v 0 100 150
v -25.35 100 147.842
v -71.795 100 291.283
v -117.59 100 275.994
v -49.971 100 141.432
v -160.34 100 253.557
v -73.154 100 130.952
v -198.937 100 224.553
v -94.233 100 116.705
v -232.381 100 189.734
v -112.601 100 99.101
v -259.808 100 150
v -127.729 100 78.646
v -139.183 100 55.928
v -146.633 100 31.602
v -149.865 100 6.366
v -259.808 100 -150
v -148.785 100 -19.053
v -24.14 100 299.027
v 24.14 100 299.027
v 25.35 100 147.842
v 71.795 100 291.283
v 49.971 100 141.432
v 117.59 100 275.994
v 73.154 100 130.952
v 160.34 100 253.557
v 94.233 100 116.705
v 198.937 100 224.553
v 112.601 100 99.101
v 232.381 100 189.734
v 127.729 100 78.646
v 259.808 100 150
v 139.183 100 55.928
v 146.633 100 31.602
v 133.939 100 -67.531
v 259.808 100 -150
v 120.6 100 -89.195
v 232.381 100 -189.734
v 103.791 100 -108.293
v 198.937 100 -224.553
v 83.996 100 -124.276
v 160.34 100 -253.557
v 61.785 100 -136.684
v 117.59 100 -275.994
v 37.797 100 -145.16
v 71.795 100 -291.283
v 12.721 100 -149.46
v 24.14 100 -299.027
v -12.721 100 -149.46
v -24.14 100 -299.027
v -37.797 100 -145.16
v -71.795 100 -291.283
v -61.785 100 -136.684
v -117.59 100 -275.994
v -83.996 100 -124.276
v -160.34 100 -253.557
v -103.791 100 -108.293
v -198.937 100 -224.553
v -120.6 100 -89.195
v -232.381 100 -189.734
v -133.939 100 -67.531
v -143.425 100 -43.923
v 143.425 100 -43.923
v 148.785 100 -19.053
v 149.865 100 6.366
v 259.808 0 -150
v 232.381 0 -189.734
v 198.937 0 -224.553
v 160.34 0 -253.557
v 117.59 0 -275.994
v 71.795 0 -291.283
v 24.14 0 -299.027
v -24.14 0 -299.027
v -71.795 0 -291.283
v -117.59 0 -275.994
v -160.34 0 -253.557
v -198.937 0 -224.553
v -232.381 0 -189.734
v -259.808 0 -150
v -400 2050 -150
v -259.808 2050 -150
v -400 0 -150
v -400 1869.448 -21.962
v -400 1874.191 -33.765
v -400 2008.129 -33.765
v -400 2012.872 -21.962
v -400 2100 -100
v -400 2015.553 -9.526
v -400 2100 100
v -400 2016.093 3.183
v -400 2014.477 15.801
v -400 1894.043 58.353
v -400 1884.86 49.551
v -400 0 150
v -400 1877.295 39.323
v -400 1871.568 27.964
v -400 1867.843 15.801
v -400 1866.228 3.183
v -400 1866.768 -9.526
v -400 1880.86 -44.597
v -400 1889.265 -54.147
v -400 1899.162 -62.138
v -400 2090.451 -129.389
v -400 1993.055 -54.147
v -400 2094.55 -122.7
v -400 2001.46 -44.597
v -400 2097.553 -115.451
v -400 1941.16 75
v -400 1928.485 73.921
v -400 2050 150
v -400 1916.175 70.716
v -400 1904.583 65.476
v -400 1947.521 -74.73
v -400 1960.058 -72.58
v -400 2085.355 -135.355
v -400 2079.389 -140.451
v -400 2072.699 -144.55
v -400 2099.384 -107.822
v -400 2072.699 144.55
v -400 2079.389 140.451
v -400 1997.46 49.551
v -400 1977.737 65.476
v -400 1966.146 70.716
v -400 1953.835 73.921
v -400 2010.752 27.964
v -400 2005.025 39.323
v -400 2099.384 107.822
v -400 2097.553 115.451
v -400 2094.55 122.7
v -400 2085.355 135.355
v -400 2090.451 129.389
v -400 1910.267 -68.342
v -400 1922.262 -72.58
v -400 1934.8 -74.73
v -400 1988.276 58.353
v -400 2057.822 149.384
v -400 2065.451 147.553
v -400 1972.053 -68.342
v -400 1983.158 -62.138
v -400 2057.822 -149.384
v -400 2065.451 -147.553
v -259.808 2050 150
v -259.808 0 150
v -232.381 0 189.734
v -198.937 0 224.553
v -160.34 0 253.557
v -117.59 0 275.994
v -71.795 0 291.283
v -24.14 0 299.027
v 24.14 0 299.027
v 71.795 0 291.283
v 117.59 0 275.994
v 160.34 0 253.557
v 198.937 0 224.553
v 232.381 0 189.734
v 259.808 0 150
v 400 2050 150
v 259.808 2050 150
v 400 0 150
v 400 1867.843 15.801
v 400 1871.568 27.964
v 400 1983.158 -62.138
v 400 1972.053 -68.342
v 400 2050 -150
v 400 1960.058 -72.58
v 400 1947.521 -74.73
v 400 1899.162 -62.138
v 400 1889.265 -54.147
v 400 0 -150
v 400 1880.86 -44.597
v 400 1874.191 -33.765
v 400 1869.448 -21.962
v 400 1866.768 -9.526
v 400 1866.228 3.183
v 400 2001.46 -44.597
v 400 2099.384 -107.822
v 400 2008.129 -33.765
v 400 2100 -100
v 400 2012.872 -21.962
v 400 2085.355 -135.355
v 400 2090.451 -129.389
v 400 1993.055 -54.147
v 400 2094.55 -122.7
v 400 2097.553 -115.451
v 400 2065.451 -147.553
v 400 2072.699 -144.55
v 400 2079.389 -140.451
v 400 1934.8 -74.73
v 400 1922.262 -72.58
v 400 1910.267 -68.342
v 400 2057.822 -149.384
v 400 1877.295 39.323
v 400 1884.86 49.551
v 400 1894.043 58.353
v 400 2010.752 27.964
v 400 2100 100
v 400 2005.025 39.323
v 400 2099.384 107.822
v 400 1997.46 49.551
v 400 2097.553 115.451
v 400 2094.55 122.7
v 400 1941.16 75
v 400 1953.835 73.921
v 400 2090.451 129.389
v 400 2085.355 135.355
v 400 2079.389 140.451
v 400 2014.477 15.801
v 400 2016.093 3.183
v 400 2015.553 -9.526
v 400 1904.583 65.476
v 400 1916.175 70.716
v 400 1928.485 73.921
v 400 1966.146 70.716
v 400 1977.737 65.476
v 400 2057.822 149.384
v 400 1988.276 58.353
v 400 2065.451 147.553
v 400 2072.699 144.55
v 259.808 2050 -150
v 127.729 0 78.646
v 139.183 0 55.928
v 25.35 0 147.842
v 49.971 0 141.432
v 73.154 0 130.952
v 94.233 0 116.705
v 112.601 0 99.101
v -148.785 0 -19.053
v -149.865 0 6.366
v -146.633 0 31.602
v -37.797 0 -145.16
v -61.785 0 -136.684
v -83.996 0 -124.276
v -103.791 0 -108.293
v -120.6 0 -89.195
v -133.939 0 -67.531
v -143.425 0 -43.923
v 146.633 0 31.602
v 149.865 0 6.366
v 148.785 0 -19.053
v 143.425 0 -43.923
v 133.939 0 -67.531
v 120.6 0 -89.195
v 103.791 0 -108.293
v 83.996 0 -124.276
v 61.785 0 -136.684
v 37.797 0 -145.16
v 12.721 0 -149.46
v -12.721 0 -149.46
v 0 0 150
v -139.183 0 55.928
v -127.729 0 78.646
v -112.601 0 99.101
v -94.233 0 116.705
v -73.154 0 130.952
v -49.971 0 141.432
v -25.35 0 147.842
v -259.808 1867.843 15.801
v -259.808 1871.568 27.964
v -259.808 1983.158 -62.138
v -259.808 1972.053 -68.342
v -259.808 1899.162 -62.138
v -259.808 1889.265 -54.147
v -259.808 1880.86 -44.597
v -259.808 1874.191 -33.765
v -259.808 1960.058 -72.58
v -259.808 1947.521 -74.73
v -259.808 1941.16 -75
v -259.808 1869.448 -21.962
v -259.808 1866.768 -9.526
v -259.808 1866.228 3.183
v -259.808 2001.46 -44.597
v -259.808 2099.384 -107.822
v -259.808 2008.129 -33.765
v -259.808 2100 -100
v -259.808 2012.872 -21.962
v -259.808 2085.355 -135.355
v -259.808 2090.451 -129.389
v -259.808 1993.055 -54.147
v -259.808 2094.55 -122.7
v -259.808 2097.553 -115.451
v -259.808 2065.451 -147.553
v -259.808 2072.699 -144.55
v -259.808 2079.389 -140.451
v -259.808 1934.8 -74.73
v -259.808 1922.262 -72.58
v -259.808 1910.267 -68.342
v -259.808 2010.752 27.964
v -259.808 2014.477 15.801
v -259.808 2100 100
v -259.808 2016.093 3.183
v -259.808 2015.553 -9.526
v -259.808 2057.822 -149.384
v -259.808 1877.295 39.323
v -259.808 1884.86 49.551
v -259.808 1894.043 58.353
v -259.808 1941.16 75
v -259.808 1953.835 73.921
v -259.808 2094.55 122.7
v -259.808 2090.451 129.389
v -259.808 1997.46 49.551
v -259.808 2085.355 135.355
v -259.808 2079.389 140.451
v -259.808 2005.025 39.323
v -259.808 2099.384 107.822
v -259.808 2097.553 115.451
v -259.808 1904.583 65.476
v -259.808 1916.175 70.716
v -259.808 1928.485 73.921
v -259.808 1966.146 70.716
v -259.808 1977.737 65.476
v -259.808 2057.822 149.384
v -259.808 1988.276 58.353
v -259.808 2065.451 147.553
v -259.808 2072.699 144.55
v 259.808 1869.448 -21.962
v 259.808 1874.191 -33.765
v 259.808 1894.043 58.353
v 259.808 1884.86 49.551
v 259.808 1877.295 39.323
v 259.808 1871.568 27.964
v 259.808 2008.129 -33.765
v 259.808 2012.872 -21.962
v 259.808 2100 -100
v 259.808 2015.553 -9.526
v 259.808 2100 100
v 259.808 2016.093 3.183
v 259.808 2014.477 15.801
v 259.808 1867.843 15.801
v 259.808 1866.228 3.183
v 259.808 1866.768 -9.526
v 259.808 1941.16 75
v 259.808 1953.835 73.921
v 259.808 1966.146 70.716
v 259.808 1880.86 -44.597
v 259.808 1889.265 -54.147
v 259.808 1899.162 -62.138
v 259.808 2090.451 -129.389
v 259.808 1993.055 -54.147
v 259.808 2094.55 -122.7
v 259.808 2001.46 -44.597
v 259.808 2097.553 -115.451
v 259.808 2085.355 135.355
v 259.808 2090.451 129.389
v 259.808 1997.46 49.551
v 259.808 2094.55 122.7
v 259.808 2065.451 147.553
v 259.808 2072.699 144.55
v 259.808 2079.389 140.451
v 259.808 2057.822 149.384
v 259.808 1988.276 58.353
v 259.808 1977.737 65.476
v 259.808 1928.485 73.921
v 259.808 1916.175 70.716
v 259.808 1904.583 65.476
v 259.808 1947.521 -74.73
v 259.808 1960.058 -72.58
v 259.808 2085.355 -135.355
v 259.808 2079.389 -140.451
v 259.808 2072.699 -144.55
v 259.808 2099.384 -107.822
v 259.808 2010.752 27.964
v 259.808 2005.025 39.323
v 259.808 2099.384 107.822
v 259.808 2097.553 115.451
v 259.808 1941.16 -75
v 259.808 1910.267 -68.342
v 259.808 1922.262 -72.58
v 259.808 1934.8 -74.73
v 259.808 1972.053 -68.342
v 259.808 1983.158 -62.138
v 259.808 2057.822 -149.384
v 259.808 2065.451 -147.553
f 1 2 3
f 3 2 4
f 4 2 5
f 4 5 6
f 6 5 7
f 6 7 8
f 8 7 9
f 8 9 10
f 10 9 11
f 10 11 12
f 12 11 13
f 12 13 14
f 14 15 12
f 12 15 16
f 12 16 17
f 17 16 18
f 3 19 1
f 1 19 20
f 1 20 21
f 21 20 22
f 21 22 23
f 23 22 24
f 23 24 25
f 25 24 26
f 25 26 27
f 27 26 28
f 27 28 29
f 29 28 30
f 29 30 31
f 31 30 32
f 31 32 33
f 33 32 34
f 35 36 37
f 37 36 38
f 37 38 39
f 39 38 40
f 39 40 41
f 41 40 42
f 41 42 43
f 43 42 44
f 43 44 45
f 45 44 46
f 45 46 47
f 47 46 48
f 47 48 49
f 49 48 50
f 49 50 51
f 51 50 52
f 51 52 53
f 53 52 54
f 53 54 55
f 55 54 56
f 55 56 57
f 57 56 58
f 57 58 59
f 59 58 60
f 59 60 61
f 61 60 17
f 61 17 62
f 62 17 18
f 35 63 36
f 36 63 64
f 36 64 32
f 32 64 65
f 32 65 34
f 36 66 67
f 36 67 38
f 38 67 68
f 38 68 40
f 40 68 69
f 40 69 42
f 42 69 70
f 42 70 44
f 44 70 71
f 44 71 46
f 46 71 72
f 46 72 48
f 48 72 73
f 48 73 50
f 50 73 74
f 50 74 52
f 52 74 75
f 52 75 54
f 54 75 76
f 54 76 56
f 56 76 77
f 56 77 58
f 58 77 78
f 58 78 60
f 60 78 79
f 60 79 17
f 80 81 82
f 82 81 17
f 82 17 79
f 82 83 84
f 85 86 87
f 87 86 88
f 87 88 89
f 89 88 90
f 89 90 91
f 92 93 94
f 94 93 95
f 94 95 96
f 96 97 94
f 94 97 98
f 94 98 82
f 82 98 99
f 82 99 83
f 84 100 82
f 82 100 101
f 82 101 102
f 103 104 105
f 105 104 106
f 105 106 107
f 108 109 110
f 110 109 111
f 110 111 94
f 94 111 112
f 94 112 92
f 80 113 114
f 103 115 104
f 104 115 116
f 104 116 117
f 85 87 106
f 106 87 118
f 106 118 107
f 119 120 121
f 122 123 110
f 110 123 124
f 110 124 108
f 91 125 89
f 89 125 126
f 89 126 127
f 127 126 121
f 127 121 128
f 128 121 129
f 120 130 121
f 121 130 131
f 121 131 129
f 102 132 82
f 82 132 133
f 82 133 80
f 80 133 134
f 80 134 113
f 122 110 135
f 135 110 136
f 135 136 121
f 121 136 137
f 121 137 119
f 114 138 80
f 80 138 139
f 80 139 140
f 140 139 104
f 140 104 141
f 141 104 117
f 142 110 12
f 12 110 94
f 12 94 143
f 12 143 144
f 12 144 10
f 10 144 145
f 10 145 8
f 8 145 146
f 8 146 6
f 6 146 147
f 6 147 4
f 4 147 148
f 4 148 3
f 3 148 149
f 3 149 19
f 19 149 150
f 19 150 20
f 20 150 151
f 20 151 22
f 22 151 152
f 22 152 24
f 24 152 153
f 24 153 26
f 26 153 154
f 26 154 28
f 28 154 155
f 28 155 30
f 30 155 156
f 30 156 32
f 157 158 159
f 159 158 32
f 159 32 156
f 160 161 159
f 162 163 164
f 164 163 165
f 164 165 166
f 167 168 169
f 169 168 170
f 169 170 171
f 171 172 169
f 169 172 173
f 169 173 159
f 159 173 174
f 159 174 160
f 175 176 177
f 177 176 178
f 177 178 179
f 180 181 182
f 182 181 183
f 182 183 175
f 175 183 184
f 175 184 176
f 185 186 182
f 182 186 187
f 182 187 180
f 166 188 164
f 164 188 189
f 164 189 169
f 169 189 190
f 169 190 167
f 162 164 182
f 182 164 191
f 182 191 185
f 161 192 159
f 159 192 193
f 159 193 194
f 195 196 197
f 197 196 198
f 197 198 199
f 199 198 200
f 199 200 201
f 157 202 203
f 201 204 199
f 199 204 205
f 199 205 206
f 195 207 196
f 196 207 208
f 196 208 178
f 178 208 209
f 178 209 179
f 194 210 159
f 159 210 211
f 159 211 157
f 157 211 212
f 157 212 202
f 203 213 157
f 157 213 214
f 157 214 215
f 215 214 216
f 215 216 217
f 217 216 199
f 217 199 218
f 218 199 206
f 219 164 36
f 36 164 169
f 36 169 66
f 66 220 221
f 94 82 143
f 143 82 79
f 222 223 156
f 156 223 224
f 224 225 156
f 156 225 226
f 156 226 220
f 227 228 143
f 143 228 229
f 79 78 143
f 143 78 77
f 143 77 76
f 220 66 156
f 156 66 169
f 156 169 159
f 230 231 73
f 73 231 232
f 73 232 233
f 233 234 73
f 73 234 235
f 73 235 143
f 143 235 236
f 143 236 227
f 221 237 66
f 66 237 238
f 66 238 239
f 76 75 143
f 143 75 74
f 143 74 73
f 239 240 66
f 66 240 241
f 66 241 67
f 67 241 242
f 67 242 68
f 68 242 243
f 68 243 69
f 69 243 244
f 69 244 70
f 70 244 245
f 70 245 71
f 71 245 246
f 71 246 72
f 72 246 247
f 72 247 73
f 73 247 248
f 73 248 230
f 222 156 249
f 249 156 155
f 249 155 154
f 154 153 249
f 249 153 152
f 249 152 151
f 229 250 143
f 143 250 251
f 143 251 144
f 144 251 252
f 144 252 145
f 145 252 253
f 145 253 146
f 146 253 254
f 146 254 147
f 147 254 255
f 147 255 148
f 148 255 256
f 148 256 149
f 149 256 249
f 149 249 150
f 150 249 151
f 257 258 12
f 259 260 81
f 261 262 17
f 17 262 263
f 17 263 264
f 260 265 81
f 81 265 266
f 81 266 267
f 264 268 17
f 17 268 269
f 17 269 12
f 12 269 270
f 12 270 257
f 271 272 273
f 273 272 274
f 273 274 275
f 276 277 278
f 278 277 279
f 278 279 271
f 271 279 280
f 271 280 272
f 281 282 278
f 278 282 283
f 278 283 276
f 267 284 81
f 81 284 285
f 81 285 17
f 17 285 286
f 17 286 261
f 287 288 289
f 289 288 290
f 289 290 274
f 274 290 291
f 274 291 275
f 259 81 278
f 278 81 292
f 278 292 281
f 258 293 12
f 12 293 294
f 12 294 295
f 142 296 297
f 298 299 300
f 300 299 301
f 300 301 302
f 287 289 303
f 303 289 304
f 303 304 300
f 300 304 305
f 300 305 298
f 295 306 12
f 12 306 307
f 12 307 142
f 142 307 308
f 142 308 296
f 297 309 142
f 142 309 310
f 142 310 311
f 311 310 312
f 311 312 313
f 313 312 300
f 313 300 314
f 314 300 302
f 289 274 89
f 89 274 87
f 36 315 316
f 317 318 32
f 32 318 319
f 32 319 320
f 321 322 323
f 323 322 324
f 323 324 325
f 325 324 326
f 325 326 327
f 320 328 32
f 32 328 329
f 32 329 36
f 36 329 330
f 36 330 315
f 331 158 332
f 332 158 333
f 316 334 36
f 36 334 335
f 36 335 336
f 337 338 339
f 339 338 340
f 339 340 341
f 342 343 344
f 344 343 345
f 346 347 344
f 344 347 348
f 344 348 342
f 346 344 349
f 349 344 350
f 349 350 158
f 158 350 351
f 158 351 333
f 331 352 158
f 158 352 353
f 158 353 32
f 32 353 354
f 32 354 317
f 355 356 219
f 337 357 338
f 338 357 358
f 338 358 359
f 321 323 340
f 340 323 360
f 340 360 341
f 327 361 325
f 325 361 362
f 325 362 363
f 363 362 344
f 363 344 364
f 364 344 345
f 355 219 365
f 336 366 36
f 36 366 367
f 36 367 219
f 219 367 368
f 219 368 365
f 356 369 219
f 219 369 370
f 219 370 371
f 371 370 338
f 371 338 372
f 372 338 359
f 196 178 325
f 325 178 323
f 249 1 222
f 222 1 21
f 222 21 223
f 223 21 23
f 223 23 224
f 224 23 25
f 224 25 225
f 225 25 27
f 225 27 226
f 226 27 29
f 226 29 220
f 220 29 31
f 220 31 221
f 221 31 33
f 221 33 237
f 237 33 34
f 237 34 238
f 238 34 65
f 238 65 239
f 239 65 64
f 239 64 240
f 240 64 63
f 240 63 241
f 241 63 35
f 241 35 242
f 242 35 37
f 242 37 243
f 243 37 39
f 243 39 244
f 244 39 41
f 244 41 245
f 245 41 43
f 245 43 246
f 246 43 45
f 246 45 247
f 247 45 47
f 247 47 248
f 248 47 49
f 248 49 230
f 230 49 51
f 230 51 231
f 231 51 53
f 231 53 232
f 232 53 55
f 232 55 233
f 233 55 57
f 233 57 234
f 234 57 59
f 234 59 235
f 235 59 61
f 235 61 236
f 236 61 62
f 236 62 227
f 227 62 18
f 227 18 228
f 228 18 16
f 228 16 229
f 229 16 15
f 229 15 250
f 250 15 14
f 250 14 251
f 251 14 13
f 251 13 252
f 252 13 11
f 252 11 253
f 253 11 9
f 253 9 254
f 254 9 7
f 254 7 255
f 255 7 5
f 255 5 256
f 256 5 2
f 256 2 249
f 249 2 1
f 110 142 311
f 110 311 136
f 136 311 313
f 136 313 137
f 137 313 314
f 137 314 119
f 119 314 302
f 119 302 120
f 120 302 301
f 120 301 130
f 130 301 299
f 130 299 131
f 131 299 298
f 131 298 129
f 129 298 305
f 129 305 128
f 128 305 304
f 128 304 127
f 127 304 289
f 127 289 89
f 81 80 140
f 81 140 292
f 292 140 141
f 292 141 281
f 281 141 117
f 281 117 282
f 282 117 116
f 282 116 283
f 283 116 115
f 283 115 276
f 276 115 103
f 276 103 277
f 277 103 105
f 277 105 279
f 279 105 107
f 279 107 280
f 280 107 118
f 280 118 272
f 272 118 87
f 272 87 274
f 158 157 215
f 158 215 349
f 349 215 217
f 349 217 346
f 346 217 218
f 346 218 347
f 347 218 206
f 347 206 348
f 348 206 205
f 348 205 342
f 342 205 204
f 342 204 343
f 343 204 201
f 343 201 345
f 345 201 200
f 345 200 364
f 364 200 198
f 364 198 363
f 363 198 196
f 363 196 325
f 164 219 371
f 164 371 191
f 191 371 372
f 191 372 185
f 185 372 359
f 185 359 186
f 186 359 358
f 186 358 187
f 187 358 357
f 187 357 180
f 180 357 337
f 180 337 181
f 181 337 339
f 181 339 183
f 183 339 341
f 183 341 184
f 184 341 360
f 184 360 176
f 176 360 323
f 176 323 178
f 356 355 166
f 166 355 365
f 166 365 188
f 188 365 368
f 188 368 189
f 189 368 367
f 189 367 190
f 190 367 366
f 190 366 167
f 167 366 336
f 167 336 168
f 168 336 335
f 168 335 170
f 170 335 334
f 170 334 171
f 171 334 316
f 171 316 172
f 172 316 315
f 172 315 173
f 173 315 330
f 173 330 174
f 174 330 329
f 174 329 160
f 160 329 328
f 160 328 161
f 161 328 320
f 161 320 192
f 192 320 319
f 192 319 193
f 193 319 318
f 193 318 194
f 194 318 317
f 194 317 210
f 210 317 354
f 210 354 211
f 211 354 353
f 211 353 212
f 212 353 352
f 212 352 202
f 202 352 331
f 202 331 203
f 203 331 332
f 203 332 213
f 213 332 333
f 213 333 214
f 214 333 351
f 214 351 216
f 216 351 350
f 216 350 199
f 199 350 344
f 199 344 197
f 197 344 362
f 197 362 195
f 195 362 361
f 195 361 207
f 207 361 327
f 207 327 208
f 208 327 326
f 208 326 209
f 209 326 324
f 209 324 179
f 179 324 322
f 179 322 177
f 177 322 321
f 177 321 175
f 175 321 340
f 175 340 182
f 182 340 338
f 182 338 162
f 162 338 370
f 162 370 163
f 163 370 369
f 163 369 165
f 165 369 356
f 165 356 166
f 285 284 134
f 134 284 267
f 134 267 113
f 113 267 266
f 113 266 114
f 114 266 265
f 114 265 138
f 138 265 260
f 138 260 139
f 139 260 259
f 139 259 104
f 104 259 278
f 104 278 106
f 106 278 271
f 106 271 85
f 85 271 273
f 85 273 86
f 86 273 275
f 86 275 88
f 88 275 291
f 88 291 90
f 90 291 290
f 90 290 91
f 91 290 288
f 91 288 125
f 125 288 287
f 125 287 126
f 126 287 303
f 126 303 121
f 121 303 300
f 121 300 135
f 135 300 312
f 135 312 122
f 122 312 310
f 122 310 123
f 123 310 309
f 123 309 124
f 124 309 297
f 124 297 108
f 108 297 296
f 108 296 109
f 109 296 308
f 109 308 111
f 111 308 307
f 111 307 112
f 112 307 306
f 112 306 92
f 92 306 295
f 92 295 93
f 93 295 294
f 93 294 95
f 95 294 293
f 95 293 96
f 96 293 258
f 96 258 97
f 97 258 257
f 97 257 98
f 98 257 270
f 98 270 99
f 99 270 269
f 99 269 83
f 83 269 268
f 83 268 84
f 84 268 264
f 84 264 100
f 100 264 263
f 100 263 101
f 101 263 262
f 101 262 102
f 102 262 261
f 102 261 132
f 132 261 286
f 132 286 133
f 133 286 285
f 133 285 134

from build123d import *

# Parameters (mm, degrees)
BOSS_EXTRUDE1_DEPTH = 100
SKETCH2_W           = 140.192378865
SKETCH2_H           = 300
BOSS_EXTRUDE2_DEPTH = 2000
SKETCH3_R           = 150
CUT_EXTRUDE1_DEPTH  = 100
FILLET1_R           = 50
CUT_EXTRUDE2_START  = -800
SKETCH4_R           = 75
CUT_EXTRUDE2_DEPTH  = 800


with BuildPart() as part:
    # Sketch1 → Boss-Extrude1 (new body)
    with BuildSketch(Plane(origin=(0, 0, 0), x_dir=(1, 0, 0), z_dir=(0, 1, 0))):
        with BuildLine():
            ThreePointArc((259.807621135, 150), (0, 300), (-259.807621135, 150))
            Line((-259.807621135, 150), (259.807621135, 150))
        make_face()
        with BuildLine():
            Line((259.807621135, 150), (-259.807621135, 150))
            ThreePointArc((-259.807621135, 150), (-300, 0), (-259.807621135, -150))
            Line((-259.807621135, -150), (259.807621135, -150))
            ThreePointArc((259.807621135, -150), (289.777747887, -77.645713531), (300, 0))
            ThreePointArc((300, 0), (289.777747887, 77.645713531), (259.807621135, 150))
        make_face()
        with BuildLine():
            Line((259.807621135, -150), (-259.807621135, -150))
            ThreePointArc((-259.807621135, -150), (0, -300), (259.807621135, -150))
        make_face()
        with BuildLine():
            Line((-259.807621135, 150), (-400, 150))
            Line((-400, 150), (-400, -150))
            Line((-400, -150), (-259.807621135, -150))
            ThreePointArc((-259.807621135, -150), (-300, 0), (-259.807621135, 150))
        make_face()
        with BuildLine():
            Line((400, 150), (259.807621135, 150))
            ThreePointArc((259.807621135, 150), (289.777747887, 77.645713531), (300, 0))
            ThreePointArc((300, 0), (289.777747887, -77.645713531), (259.807621135, -150))
            Line((259.807621135, -150), (400, -150))
            Line((400, -150), (400, 150))
        make_face()
    extrude(amount=BOSS_EXTRUDE1_DEPTH)

    # Sketch2 → Boss-Extrude2 (add)
    with BuildSketch(Plane(origin=(0, 100, 0), x_dir=(1, 0, 0), z_dir=(0, 1, 0))):
        with Locations((-329.903810568, 0)):
            Rectangle(SKETCH2_W, SKETCH2_H)
        with Locations((329.903810568, 0)):
            Rectangle(SKETCH2_W, SKETCH2_H)
    extrude(amount=BOSS_EXTRUDE2_DEPTH)

    # Sketch3 → Cut-Extrude1 (cut)
    with BuildSketch(Plane(origin=(0, 100, 0), x_dir=(1, 0, 0), z_dir=(0, 1, 0))):
        with Locations(Location((0, 0, 0), (0, 0, 270))):
            Circle(SKETCH3_R)
    extrude(amount=-CUT_EXTRUDE1_DEPTH, mode=Mode.SUBTRACT)

    # Fillet1
    fillet1_edges = [part.edges().sort_by_distance(p)[0] for p in [
        (-329.903810568, 2100, -150),
        (-329.903810568, 2100, 150),
        (329.903810568, 2100, -150),
        (329.903810568, 2100, 150),
    ]]
    fillet(fillet1_edges, radius=FILLET1_R)

    # Sketch4 → Cut-Extrude2 (cut)
    with BuildSketch(Plane.ZY.offset(400).offset(CUT_EXTRUDE2_START)):
        with Locations((0, 1941.16)):
            Circle(SKETCH4_R)
    extrude(amount=CUT_EXTRUDE2_DEPTH, mode=Mode.SUBTRACT)


solid = part.part
